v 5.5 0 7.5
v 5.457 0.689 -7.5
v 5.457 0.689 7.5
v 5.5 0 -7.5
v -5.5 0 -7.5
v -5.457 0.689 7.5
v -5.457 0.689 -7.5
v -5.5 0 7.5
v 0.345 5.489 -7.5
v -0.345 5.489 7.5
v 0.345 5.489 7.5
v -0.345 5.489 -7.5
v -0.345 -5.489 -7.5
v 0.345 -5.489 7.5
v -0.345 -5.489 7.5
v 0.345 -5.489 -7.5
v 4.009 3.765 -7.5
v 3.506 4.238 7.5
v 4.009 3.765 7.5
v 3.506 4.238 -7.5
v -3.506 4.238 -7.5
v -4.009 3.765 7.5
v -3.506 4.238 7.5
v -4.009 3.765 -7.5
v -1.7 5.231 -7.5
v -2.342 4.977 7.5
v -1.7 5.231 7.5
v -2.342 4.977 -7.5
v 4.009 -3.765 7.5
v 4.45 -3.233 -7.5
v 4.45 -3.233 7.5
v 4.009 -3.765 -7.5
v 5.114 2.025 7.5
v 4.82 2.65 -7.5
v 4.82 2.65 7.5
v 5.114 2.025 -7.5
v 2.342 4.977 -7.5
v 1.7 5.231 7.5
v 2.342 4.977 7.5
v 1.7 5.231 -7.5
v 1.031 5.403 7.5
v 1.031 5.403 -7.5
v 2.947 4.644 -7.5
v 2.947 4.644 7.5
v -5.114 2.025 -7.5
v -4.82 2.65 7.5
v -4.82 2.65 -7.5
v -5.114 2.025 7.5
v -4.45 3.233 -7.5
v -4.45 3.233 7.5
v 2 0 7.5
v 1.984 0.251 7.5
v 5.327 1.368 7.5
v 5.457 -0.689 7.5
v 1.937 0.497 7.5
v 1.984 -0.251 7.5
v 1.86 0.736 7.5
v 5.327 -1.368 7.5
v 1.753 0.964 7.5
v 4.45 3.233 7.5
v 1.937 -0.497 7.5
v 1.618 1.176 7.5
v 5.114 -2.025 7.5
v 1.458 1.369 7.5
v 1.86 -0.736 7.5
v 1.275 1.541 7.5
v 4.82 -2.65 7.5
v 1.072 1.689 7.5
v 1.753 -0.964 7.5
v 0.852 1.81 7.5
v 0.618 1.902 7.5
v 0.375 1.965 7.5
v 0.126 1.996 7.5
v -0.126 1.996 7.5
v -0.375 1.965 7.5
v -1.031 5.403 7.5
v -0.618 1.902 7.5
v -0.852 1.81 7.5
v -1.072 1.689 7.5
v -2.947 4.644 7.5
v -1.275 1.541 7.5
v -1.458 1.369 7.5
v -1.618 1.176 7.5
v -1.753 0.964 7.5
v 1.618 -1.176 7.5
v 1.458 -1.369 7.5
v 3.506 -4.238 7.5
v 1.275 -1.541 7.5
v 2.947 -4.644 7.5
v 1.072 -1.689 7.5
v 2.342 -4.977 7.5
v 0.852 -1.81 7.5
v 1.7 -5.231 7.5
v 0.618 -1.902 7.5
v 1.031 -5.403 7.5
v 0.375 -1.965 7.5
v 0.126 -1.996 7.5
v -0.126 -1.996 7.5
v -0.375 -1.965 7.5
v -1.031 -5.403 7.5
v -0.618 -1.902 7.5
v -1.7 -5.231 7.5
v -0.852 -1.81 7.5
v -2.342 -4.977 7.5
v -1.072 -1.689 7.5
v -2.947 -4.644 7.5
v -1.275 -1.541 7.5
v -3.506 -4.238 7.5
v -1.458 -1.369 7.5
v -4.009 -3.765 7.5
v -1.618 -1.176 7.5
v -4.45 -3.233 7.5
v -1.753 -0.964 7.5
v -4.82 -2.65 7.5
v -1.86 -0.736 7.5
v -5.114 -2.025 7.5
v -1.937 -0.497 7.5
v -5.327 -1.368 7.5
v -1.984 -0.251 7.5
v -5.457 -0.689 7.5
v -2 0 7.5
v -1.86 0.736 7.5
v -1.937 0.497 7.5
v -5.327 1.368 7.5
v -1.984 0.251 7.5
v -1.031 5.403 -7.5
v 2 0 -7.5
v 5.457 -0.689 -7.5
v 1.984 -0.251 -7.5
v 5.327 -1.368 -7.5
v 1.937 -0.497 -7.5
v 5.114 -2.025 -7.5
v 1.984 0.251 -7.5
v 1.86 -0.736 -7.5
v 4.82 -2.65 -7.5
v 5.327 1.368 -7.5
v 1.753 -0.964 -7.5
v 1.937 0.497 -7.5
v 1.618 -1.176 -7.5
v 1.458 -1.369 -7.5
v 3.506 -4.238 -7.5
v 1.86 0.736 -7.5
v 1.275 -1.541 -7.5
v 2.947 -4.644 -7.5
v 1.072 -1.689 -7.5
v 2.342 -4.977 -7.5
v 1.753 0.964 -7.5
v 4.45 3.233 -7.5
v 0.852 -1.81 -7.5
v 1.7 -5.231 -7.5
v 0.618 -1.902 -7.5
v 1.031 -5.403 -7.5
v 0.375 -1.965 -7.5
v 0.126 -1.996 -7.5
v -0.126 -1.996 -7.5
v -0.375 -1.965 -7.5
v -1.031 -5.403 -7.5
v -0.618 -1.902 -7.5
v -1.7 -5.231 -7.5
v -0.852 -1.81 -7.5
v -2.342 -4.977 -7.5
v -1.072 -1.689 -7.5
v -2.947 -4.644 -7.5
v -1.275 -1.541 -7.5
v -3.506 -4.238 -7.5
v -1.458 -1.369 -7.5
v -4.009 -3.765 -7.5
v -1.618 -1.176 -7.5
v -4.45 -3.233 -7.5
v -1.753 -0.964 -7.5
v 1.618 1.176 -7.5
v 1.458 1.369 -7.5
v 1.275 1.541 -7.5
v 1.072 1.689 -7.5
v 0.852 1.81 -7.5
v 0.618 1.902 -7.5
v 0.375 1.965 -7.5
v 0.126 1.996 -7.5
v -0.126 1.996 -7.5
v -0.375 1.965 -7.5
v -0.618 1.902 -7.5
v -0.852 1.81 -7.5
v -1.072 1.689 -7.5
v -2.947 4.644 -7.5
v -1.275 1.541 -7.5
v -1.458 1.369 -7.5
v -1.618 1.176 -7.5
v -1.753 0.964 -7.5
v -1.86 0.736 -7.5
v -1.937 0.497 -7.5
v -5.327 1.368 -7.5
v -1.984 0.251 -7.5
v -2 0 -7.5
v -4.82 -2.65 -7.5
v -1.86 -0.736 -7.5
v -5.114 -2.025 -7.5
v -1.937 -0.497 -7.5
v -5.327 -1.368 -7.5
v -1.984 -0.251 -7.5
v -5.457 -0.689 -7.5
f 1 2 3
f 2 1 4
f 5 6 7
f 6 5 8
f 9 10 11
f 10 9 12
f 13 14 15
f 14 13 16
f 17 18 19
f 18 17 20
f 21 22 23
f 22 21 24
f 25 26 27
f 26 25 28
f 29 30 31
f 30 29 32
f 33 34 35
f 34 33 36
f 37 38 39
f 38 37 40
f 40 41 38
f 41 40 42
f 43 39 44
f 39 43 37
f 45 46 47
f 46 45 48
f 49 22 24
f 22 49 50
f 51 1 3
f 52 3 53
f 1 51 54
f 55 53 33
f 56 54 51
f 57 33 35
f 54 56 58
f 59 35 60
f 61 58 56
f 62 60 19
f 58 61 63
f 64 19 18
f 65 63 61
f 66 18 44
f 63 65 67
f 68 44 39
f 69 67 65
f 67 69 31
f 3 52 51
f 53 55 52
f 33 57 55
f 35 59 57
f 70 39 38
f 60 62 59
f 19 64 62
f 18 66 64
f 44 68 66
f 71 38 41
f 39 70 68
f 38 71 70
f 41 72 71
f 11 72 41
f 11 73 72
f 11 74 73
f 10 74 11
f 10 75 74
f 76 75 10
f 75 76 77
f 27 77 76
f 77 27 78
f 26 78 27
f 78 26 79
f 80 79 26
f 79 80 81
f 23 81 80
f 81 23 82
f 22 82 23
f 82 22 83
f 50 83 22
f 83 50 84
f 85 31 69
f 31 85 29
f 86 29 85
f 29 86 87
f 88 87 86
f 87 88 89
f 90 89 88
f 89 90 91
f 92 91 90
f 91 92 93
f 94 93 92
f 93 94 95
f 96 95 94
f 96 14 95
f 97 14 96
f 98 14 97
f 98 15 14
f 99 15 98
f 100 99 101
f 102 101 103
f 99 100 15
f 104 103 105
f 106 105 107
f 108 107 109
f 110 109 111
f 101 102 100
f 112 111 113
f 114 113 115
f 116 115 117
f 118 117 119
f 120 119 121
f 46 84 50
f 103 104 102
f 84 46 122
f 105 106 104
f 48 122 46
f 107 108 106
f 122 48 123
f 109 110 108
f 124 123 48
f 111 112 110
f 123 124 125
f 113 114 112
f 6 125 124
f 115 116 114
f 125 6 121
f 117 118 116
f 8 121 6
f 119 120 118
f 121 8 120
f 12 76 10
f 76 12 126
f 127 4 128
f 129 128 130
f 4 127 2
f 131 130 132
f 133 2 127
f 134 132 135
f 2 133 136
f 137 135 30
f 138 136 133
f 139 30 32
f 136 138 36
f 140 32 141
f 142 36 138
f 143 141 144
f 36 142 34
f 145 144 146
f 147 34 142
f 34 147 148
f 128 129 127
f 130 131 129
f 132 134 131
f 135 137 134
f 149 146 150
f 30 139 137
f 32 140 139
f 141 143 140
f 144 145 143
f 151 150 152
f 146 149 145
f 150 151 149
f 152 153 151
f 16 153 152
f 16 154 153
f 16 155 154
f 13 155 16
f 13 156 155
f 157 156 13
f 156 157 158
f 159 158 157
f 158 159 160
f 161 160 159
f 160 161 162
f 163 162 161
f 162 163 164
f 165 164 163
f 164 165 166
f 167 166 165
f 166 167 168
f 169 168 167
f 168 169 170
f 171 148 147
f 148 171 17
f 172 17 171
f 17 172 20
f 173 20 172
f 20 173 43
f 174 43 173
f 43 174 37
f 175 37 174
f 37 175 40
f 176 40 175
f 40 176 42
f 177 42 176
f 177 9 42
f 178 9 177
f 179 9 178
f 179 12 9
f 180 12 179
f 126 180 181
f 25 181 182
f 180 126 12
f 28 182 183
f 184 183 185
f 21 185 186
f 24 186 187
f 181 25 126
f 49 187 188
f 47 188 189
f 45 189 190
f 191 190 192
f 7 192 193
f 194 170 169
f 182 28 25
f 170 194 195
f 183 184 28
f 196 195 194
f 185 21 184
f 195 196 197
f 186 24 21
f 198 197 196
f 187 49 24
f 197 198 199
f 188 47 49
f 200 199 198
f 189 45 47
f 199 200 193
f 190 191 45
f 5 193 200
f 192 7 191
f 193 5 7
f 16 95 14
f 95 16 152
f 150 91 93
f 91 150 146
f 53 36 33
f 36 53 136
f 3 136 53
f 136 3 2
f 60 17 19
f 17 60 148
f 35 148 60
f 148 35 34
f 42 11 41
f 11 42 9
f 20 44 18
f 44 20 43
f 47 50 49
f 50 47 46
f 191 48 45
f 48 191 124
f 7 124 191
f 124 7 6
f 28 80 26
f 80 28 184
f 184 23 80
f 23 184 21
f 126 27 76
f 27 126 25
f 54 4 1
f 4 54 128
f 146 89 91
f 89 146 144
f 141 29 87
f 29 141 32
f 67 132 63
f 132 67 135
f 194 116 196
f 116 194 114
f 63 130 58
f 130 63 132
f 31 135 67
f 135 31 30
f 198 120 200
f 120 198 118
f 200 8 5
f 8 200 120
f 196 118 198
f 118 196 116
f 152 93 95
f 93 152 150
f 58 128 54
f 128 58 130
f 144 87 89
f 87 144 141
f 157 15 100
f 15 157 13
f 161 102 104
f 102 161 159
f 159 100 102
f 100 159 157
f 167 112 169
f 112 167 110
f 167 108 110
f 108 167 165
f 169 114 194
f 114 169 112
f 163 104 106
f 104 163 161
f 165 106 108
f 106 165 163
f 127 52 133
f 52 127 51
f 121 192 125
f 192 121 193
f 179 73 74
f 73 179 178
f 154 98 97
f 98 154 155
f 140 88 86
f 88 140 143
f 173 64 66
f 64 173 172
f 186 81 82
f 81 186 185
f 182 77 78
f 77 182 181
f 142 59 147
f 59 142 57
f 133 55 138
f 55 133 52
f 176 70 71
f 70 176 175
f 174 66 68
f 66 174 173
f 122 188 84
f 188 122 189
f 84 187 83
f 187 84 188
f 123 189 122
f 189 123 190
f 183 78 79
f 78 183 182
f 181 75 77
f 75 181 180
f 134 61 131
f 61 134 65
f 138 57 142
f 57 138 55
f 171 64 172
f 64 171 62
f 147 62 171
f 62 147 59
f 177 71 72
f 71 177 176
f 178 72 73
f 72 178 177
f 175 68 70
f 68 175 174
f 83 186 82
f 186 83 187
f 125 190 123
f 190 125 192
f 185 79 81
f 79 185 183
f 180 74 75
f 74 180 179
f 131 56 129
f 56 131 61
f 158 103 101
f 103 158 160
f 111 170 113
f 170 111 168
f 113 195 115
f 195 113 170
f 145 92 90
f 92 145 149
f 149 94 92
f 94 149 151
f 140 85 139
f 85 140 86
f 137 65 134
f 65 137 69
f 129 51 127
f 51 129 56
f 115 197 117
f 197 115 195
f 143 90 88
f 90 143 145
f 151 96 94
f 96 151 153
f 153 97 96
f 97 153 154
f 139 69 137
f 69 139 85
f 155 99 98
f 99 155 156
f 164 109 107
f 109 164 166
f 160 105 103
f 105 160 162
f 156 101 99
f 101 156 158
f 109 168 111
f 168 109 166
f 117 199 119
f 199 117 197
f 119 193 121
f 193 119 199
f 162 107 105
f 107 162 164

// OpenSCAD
$fn = 50;


difference() {
	union() {
		translate(v = [0, 0, -7.5000000000]) {
			cylinder(h = 15, r = 5.5000000000);
		}
	}
	union() {
		translate(v = [0, 0, -100.0000000000]) {
			cylinder(h = 200, r = 2);
		}
	}
}
